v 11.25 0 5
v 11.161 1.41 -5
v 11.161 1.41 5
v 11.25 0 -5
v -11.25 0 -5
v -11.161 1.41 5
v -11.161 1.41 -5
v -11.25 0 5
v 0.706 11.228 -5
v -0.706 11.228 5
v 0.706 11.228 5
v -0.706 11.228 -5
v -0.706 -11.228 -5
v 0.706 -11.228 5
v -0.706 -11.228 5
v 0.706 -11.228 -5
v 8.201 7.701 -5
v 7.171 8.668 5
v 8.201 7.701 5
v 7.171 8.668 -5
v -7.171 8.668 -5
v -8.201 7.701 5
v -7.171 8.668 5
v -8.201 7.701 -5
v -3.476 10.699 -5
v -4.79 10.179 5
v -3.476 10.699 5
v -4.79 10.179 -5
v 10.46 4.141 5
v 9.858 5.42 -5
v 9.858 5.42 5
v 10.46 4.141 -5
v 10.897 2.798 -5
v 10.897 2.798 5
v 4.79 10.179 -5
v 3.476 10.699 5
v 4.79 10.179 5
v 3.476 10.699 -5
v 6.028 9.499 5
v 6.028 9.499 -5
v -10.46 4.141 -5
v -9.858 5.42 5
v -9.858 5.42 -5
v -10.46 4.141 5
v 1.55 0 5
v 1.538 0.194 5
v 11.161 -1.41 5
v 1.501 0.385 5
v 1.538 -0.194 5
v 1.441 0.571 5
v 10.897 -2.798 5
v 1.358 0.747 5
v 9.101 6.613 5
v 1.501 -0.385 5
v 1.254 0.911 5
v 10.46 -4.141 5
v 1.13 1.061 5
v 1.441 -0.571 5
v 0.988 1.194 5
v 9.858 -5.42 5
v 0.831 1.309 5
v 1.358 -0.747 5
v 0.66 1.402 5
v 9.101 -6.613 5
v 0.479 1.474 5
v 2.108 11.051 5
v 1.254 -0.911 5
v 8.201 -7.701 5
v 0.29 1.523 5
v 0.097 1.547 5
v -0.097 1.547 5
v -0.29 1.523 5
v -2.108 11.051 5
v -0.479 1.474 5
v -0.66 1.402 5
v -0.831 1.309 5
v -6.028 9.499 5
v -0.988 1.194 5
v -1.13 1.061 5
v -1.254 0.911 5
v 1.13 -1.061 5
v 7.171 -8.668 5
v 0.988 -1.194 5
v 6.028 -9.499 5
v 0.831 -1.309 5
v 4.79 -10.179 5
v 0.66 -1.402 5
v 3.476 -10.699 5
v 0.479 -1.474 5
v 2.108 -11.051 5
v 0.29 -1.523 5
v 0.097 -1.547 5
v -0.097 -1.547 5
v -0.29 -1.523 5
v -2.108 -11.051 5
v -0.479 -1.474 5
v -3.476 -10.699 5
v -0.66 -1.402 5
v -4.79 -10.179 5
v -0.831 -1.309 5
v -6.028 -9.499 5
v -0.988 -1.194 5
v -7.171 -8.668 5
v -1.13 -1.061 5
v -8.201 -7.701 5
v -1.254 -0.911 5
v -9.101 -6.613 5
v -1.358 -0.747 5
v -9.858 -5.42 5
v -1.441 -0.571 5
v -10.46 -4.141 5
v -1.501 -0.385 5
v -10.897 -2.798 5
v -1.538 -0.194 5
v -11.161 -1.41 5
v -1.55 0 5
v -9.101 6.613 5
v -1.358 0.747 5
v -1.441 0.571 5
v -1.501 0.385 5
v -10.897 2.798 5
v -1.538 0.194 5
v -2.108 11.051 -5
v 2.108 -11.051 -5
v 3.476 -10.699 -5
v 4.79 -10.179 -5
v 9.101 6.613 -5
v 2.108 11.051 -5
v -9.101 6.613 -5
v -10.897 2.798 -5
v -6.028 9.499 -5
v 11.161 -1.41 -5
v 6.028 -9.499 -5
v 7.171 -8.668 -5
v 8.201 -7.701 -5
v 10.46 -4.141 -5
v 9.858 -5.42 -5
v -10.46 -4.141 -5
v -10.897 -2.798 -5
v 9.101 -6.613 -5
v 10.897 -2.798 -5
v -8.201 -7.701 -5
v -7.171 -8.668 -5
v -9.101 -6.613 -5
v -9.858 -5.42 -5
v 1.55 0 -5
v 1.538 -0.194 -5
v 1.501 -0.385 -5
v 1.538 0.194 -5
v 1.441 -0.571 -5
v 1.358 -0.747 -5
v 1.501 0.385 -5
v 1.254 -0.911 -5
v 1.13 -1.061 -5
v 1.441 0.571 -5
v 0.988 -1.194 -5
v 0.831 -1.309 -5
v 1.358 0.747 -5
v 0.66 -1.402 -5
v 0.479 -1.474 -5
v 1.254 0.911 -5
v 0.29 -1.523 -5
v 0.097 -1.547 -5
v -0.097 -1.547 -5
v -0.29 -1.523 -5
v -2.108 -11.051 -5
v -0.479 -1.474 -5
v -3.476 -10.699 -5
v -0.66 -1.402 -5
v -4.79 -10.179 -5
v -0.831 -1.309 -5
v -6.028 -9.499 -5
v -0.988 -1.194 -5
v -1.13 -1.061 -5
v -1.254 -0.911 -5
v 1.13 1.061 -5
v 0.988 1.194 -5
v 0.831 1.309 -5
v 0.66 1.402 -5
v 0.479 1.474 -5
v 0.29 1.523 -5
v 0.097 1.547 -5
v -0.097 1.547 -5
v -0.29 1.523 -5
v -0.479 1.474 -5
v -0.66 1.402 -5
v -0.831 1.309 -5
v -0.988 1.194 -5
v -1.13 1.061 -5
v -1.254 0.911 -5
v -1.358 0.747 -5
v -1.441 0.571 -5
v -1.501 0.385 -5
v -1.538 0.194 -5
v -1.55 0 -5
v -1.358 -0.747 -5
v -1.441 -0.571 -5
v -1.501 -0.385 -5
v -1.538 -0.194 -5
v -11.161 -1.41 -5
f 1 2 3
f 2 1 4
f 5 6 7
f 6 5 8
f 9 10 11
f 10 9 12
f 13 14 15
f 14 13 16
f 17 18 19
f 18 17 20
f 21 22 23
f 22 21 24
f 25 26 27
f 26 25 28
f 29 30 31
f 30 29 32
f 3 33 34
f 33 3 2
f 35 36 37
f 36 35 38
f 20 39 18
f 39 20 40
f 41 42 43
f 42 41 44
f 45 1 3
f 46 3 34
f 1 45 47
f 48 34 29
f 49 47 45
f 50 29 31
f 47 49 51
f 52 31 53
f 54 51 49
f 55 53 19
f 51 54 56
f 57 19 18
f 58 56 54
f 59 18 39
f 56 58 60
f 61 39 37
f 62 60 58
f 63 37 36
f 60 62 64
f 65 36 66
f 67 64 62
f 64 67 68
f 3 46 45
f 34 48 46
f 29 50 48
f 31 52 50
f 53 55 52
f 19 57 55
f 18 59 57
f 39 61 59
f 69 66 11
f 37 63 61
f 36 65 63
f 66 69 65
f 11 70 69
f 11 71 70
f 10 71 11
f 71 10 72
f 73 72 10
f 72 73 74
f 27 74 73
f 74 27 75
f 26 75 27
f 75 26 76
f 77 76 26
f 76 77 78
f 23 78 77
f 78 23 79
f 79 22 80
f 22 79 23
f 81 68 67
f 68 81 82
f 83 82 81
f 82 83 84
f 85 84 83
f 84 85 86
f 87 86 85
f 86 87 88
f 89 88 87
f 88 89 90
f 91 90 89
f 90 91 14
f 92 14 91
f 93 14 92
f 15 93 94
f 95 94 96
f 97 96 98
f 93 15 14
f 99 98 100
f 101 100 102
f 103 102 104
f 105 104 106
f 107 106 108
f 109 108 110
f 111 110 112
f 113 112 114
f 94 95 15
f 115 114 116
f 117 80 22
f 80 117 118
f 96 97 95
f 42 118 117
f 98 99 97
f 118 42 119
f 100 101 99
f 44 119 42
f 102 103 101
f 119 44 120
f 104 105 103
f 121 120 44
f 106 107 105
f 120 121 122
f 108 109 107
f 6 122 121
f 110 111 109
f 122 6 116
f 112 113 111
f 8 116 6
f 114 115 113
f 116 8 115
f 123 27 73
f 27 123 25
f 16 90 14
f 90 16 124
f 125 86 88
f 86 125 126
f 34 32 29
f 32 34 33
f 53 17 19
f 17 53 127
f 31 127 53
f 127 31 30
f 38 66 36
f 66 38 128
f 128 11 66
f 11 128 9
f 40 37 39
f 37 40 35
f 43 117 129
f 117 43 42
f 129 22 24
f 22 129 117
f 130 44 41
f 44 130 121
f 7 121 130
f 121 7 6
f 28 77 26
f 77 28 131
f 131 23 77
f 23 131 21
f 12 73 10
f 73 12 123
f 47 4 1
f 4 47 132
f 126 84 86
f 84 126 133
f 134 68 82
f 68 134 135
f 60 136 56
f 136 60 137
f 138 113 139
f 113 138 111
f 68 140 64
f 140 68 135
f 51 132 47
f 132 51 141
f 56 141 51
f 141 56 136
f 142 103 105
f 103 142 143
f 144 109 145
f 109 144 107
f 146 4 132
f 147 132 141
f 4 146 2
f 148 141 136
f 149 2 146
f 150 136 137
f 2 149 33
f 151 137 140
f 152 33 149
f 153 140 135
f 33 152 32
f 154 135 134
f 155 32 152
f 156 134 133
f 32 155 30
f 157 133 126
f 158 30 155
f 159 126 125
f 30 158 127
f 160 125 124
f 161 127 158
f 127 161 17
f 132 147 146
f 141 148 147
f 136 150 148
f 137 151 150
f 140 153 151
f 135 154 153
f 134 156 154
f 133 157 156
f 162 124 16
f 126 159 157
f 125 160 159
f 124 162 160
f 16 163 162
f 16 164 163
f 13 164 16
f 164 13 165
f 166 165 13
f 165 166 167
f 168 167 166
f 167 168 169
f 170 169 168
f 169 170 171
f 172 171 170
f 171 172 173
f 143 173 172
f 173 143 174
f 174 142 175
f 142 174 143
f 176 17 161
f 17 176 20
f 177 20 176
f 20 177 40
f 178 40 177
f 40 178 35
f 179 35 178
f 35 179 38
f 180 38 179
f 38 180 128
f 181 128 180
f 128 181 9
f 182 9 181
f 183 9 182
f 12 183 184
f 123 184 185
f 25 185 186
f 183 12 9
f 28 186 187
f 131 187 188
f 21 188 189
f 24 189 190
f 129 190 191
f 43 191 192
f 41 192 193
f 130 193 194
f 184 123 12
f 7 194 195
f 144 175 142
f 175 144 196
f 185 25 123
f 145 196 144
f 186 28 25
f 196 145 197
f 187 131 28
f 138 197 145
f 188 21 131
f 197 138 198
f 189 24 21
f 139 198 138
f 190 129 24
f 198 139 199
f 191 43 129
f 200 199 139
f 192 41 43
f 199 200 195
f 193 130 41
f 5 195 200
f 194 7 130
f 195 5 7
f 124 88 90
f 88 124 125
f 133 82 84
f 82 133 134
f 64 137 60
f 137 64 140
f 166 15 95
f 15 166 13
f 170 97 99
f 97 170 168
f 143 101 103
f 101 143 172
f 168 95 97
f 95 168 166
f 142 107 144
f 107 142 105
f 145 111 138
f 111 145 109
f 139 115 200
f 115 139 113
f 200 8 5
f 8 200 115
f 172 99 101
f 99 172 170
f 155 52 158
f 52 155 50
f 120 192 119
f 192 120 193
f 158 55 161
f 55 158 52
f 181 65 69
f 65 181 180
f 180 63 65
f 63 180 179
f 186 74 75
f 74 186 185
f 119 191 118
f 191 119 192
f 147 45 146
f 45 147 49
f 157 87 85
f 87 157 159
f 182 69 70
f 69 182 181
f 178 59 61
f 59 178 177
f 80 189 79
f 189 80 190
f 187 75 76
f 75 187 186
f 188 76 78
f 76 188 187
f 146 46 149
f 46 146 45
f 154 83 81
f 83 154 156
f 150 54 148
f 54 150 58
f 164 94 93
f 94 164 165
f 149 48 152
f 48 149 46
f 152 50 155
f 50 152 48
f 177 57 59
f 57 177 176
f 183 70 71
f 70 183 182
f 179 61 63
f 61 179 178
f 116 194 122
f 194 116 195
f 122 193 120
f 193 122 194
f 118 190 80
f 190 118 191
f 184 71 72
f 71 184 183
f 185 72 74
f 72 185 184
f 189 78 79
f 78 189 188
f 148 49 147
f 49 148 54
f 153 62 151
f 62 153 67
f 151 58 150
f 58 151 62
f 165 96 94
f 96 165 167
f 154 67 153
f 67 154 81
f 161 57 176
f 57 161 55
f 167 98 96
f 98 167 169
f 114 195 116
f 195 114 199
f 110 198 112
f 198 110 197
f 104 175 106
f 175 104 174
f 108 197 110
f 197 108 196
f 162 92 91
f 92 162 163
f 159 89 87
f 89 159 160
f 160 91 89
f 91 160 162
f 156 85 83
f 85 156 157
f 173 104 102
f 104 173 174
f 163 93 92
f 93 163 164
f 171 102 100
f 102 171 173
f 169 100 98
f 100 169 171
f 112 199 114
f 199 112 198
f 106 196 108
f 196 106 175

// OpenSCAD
$fn = 50;


difference() {
	union() {
		translate(v = [0, 0, -5.0000000000]) {
			cylinder(h = 10, r = 11.2500000000);
		}
	}
	union() {
		translate(v = [0, 0, -100.0000000000]) {
			cylinder(h = 200, r = 1.5500000000);
		}
	}
}
